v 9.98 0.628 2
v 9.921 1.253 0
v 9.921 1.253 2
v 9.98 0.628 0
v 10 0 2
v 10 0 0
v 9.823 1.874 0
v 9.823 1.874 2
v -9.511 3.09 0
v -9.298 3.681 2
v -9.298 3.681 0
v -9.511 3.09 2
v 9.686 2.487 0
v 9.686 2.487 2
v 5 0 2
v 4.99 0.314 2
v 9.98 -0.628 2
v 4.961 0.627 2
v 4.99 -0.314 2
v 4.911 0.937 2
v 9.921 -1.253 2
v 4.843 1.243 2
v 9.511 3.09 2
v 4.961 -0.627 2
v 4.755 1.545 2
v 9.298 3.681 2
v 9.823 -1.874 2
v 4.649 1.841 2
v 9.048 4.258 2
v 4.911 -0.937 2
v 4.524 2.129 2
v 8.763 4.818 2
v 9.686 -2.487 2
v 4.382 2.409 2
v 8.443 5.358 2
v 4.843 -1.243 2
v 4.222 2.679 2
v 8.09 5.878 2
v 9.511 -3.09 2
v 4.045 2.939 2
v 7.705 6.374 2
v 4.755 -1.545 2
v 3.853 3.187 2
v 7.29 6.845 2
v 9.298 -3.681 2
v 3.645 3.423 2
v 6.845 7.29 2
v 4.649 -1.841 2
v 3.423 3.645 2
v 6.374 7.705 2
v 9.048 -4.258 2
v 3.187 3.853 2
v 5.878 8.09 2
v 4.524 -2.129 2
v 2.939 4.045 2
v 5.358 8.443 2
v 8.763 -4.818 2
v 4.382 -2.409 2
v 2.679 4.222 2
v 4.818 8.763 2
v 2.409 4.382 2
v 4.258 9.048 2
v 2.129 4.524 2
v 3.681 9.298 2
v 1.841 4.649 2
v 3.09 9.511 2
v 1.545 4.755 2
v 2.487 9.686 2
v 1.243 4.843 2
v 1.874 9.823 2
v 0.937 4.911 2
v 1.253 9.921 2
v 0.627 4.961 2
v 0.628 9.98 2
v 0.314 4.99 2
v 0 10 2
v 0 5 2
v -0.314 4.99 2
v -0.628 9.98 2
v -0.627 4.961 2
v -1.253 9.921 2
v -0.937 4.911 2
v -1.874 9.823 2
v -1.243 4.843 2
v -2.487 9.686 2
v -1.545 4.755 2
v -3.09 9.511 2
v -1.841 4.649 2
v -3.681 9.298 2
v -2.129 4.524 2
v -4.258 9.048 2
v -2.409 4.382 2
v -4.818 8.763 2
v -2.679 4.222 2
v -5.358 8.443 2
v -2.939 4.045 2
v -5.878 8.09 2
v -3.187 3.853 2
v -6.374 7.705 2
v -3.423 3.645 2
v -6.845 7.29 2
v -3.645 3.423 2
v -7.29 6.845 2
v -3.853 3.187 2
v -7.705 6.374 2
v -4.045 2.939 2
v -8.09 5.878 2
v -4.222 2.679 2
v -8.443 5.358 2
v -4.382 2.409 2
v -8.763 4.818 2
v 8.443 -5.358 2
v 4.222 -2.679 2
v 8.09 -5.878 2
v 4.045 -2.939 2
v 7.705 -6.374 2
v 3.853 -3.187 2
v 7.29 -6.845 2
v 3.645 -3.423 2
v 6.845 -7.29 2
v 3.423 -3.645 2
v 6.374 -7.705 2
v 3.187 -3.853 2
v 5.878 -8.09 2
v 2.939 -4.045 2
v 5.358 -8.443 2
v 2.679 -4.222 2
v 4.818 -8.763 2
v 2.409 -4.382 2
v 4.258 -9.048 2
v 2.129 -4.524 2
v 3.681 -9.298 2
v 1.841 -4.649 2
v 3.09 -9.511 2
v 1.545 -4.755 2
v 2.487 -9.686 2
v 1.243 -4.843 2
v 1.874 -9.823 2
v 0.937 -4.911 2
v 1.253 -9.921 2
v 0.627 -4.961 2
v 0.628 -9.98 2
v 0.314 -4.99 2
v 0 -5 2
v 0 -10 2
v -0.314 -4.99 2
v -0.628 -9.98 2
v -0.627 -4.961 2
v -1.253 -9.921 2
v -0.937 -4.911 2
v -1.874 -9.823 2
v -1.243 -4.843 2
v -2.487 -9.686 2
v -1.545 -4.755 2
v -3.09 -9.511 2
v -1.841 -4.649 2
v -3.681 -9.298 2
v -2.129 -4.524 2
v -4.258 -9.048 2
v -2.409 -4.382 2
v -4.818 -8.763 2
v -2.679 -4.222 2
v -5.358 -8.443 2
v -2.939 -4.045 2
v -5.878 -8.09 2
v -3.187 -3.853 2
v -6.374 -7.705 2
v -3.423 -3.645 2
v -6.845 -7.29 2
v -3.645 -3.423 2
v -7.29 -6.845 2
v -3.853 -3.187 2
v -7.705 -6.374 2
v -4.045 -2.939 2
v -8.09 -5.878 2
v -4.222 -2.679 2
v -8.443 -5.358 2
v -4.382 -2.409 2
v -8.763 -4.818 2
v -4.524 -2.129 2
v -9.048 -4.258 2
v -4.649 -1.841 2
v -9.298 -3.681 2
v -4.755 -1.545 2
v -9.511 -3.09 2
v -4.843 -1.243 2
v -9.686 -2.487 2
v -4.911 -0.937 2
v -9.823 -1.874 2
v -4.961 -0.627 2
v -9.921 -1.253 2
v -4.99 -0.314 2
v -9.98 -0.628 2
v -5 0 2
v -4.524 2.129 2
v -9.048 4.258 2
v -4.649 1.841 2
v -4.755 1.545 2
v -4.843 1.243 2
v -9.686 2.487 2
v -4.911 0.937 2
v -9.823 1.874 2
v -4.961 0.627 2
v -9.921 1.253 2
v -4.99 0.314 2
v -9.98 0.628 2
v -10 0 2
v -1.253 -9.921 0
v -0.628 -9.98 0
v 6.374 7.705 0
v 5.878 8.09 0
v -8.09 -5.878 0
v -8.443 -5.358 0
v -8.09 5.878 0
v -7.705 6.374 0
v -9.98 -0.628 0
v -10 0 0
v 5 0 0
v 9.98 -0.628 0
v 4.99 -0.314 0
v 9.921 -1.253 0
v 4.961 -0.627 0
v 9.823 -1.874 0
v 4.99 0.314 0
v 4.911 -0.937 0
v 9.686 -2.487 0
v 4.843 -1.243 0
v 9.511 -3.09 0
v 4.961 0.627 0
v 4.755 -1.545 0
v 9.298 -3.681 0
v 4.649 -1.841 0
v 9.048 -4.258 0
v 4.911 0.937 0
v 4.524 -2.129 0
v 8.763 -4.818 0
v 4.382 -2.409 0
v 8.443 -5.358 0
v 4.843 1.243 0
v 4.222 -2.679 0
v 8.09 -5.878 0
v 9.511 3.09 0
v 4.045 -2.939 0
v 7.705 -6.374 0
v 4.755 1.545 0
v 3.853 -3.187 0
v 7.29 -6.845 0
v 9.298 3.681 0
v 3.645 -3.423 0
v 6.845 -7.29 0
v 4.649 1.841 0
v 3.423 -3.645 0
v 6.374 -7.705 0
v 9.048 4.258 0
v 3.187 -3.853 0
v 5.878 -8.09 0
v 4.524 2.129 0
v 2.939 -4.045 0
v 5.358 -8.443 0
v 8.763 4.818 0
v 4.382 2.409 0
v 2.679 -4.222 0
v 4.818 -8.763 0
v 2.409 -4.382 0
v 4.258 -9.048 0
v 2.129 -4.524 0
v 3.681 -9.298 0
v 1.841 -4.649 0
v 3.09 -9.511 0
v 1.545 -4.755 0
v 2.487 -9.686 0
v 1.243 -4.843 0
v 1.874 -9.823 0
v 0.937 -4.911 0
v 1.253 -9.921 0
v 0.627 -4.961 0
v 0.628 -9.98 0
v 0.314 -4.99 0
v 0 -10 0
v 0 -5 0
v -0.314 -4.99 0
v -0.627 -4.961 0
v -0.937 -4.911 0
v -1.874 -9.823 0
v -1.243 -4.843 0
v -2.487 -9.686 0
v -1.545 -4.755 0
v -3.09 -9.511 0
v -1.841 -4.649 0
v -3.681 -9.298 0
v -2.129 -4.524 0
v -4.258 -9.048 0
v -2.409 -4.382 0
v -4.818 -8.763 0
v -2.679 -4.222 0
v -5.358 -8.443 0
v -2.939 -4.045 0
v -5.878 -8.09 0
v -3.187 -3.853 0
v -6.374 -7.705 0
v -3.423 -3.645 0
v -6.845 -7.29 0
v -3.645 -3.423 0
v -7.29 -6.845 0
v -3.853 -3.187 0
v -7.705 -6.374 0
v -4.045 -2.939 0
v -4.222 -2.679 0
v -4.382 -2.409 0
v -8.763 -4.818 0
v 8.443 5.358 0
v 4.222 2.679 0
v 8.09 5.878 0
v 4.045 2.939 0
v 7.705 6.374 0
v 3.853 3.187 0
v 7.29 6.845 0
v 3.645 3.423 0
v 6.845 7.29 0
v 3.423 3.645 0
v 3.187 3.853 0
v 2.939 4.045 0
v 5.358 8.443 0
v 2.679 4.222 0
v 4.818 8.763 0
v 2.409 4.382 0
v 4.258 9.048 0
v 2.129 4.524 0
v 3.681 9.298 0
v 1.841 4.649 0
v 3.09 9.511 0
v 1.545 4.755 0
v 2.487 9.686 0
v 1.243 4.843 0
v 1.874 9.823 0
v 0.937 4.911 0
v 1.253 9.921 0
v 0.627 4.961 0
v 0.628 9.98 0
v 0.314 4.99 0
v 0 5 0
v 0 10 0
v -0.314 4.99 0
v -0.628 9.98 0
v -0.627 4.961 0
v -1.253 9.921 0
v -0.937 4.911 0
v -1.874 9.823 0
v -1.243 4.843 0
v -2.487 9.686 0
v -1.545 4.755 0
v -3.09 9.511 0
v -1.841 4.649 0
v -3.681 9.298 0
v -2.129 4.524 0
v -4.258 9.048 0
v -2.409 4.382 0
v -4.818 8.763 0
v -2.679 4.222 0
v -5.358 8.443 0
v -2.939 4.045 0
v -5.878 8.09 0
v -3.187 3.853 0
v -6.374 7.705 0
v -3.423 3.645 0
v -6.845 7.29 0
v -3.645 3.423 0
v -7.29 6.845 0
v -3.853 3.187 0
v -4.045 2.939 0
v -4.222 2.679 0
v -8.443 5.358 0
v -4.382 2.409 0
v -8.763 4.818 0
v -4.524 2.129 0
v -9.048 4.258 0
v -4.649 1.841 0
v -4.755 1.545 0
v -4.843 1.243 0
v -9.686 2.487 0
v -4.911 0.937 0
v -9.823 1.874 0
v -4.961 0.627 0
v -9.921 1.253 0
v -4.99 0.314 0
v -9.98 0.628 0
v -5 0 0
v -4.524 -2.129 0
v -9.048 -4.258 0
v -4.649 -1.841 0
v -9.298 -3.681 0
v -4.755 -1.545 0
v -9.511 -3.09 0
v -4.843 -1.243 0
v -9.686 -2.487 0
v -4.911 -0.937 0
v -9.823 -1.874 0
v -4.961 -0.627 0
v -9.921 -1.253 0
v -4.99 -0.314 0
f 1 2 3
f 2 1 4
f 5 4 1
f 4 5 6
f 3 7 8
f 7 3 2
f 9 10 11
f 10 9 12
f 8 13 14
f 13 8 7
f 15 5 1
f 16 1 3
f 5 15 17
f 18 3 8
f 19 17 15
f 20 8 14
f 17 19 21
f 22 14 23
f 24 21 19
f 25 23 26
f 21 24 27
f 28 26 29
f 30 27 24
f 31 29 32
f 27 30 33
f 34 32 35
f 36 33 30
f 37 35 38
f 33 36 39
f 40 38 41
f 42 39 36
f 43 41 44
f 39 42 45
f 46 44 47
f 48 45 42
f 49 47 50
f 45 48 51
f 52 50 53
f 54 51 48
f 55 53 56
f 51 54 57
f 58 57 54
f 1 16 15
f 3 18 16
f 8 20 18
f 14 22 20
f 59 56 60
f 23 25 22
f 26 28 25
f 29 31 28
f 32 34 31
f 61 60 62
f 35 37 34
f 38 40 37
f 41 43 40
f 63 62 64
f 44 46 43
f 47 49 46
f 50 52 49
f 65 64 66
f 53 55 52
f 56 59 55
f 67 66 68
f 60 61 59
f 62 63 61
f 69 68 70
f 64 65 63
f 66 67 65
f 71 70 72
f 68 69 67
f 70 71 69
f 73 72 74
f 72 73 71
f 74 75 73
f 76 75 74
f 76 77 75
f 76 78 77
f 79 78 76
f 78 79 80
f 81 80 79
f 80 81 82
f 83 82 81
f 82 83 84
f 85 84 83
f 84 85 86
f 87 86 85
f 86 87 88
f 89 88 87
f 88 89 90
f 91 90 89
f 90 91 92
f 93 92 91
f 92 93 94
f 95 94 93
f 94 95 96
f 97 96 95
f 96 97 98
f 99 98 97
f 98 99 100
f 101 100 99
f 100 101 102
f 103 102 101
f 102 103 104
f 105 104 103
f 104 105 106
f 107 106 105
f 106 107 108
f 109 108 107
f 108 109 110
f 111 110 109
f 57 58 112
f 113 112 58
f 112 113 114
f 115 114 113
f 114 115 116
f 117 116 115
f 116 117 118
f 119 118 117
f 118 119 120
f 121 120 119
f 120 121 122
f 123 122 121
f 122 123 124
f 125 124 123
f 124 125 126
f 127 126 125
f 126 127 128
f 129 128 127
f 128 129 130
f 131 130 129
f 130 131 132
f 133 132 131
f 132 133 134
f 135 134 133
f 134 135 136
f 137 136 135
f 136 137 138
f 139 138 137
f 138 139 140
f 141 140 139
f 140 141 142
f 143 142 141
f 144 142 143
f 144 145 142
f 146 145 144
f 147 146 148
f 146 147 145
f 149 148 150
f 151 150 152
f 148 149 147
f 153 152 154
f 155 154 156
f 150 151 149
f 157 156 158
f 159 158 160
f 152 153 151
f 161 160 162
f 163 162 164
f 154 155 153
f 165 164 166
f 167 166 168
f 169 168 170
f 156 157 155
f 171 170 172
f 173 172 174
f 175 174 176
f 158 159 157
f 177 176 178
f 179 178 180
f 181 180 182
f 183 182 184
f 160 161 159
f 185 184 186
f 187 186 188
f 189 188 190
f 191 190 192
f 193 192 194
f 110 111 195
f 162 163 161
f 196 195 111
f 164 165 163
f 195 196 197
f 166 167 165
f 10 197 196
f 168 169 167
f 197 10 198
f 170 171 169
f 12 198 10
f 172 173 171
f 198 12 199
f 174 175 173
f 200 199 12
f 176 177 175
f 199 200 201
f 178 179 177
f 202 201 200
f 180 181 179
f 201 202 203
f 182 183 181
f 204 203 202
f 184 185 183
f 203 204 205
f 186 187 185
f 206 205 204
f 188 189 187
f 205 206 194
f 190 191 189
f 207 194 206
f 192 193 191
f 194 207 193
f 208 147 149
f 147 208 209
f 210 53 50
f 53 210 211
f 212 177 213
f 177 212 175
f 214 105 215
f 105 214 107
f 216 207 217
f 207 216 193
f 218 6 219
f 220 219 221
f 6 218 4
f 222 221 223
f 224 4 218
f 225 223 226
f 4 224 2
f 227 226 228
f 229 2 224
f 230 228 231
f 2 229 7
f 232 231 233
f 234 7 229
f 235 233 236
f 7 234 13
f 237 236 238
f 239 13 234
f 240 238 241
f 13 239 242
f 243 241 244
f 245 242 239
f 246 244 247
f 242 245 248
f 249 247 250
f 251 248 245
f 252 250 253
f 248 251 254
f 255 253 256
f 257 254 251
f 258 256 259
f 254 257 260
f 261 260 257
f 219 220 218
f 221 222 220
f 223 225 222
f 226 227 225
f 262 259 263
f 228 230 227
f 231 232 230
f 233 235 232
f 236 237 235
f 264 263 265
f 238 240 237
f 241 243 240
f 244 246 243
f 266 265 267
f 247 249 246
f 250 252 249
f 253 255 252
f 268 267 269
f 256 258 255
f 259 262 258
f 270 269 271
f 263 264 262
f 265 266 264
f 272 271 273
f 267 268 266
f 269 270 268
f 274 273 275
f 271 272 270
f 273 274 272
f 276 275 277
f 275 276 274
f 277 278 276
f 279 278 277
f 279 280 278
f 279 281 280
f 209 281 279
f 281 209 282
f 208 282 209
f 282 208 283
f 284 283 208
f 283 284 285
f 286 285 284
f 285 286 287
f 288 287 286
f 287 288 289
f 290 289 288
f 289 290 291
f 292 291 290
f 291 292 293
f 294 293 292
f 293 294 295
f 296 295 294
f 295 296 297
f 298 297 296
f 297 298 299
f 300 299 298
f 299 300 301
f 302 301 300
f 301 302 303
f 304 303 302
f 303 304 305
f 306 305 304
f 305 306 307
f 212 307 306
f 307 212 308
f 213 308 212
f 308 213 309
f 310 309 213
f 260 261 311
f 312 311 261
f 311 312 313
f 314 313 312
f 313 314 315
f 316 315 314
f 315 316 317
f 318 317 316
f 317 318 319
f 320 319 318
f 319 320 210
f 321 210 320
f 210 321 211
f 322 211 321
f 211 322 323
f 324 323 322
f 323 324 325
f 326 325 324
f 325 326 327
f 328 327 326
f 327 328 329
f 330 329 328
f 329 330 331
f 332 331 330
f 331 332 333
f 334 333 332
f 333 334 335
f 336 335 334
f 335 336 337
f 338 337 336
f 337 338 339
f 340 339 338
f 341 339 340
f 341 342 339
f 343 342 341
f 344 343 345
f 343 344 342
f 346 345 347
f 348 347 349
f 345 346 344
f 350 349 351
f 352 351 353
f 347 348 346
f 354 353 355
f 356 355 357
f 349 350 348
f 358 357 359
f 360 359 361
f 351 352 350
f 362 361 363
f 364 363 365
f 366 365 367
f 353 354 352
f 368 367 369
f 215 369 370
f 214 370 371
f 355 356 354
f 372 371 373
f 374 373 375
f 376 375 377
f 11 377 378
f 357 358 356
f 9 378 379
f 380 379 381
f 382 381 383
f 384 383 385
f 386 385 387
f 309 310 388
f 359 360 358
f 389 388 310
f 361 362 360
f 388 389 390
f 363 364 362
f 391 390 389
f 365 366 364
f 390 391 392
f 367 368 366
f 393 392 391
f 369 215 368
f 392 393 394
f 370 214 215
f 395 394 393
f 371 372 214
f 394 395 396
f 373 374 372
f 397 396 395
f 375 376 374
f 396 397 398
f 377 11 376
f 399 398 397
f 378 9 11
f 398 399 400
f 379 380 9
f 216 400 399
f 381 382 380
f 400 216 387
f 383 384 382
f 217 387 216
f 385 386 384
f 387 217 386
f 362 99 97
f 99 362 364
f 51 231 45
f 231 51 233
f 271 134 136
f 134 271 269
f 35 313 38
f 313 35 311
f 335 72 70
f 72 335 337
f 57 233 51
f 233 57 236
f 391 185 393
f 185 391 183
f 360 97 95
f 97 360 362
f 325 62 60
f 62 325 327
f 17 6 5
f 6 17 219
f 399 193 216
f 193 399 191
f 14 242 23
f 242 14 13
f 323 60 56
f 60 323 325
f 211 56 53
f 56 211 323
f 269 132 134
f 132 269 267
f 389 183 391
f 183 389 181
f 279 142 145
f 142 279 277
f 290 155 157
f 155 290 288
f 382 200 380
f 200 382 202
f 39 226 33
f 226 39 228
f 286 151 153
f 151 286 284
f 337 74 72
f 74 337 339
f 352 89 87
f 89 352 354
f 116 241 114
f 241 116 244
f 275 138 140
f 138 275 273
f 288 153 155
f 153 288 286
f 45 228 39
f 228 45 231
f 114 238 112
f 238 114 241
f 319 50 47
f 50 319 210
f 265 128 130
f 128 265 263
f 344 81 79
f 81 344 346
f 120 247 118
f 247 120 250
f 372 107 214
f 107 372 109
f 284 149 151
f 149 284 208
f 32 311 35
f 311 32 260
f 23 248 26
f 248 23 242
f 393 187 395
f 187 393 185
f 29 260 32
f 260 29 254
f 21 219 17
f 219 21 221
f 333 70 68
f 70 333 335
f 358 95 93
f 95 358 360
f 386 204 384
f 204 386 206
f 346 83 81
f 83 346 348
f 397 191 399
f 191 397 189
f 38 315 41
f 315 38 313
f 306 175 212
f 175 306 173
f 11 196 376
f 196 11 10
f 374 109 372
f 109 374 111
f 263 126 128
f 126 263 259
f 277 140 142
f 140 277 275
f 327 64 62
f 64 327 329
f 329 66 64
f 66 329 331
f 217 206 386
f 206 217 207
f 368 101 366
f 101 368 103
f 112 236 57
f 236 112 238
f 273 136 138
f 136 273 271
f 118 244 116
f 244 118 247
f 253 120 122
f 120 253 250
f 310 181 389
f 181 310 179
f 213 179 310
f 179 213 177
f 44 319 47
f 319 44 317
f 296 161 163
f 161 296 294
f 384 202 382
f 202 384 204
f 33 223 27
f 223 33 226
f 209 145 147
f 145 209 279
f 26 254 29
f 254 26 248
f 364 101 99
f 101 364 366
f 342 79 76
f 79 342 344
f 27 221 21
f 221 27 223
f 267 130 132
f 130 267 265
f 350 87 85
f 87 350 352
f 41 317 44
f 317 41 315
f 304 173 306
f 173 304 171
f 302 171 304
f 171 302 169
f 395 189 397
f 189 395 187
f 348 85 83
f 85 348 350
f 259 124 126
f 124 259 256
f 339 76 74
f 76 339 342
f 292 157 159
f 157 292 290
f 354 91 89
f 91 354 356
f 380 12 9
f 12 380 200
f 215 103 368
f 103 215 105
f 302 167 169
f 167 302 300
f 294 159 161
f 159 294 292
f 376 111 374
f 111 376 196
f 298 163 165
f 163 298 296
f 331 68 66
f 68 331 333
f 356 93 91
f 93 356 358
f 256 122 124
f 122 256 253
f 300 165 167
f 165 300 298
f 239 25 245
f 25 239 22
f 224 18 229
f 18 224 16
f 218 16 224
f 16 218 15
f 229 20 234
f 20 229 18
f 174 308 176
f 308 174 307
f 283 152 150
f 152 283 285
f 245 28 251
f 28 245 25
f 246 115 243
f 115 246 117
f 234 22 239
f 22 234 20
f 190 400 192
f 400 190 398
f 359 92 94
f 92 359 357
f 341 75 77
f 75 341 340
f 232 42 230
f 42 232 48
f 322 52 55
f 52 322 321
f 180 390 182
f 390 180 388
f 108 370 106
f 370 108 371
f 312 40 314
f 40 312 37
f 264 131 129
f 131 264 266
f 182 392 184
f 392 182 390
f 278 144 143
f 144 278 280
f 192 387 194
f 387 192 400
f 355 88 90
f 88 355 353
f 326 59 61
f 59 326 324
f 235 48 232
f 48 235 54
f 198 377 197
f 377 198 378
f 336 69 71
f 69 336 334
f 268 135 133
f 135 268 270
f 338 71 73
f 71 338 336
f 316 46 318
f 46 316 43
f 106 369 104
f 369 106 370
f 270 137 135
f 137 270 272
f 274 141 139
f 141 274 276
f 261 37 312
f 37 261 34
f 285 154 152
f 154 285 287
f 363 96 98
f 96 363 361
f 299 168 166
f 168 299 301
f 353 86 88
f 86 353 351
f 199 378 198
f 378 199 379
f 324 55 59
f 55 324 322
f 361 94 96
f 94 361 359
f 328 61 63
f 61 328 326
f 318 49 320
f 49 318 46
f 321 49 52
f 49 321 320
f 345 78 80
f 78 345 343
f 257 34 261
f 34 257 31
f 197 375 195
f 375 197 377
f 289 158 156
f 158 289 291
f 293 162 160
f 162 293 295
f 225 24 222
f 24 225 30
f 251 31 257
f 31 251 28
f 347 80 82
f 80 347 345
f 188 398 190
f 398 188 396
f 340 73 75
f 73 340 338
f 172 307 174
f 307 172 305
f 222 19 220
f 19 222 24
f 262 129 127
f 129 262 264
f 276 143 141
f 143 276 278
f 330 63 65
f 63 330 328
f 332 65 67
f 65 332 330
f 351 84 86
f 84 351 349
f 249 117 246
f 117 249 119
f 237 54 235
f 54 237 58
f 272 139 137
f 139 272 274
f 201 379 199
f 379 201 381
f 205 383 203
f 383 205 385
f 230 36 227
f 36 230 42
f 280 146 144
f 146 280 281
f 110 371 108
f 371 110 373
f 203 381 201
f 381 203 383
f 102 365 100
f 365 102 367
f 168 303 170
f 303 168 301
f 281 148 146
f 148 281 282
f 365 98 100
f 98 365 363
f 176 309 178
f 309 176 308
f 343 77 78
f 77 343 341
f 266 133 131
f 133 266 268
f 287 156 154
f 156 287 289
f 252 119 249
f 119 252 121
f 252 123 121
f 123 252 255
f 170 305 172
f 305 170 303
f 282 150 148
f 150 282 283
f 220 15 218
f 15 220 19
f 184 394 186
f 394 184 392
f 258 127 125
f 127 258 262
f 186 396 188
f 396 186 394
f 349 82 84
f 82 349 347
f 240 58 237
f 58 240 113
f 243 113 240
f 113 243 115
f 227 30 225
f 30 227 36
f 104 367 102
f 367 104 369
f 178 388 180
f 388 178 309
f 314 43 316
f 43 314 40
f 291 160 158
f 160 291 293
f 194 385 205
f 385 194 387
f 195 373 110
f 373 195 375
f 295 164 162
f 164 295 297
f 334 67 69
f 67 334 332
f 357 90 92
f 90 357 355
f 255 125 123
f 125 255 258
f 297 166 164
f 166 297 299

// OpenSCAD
module ring(radius, thickness, hole_radius) {
  difference() {
    cylinder(h = thickness, r = radius, $fn = 100);
    cylinder(h = thickness + 0.1, r = hole_radius, $fn = 100);
  }
}

ring(radius = 10, thickness = 2, hole_radius = 5);
